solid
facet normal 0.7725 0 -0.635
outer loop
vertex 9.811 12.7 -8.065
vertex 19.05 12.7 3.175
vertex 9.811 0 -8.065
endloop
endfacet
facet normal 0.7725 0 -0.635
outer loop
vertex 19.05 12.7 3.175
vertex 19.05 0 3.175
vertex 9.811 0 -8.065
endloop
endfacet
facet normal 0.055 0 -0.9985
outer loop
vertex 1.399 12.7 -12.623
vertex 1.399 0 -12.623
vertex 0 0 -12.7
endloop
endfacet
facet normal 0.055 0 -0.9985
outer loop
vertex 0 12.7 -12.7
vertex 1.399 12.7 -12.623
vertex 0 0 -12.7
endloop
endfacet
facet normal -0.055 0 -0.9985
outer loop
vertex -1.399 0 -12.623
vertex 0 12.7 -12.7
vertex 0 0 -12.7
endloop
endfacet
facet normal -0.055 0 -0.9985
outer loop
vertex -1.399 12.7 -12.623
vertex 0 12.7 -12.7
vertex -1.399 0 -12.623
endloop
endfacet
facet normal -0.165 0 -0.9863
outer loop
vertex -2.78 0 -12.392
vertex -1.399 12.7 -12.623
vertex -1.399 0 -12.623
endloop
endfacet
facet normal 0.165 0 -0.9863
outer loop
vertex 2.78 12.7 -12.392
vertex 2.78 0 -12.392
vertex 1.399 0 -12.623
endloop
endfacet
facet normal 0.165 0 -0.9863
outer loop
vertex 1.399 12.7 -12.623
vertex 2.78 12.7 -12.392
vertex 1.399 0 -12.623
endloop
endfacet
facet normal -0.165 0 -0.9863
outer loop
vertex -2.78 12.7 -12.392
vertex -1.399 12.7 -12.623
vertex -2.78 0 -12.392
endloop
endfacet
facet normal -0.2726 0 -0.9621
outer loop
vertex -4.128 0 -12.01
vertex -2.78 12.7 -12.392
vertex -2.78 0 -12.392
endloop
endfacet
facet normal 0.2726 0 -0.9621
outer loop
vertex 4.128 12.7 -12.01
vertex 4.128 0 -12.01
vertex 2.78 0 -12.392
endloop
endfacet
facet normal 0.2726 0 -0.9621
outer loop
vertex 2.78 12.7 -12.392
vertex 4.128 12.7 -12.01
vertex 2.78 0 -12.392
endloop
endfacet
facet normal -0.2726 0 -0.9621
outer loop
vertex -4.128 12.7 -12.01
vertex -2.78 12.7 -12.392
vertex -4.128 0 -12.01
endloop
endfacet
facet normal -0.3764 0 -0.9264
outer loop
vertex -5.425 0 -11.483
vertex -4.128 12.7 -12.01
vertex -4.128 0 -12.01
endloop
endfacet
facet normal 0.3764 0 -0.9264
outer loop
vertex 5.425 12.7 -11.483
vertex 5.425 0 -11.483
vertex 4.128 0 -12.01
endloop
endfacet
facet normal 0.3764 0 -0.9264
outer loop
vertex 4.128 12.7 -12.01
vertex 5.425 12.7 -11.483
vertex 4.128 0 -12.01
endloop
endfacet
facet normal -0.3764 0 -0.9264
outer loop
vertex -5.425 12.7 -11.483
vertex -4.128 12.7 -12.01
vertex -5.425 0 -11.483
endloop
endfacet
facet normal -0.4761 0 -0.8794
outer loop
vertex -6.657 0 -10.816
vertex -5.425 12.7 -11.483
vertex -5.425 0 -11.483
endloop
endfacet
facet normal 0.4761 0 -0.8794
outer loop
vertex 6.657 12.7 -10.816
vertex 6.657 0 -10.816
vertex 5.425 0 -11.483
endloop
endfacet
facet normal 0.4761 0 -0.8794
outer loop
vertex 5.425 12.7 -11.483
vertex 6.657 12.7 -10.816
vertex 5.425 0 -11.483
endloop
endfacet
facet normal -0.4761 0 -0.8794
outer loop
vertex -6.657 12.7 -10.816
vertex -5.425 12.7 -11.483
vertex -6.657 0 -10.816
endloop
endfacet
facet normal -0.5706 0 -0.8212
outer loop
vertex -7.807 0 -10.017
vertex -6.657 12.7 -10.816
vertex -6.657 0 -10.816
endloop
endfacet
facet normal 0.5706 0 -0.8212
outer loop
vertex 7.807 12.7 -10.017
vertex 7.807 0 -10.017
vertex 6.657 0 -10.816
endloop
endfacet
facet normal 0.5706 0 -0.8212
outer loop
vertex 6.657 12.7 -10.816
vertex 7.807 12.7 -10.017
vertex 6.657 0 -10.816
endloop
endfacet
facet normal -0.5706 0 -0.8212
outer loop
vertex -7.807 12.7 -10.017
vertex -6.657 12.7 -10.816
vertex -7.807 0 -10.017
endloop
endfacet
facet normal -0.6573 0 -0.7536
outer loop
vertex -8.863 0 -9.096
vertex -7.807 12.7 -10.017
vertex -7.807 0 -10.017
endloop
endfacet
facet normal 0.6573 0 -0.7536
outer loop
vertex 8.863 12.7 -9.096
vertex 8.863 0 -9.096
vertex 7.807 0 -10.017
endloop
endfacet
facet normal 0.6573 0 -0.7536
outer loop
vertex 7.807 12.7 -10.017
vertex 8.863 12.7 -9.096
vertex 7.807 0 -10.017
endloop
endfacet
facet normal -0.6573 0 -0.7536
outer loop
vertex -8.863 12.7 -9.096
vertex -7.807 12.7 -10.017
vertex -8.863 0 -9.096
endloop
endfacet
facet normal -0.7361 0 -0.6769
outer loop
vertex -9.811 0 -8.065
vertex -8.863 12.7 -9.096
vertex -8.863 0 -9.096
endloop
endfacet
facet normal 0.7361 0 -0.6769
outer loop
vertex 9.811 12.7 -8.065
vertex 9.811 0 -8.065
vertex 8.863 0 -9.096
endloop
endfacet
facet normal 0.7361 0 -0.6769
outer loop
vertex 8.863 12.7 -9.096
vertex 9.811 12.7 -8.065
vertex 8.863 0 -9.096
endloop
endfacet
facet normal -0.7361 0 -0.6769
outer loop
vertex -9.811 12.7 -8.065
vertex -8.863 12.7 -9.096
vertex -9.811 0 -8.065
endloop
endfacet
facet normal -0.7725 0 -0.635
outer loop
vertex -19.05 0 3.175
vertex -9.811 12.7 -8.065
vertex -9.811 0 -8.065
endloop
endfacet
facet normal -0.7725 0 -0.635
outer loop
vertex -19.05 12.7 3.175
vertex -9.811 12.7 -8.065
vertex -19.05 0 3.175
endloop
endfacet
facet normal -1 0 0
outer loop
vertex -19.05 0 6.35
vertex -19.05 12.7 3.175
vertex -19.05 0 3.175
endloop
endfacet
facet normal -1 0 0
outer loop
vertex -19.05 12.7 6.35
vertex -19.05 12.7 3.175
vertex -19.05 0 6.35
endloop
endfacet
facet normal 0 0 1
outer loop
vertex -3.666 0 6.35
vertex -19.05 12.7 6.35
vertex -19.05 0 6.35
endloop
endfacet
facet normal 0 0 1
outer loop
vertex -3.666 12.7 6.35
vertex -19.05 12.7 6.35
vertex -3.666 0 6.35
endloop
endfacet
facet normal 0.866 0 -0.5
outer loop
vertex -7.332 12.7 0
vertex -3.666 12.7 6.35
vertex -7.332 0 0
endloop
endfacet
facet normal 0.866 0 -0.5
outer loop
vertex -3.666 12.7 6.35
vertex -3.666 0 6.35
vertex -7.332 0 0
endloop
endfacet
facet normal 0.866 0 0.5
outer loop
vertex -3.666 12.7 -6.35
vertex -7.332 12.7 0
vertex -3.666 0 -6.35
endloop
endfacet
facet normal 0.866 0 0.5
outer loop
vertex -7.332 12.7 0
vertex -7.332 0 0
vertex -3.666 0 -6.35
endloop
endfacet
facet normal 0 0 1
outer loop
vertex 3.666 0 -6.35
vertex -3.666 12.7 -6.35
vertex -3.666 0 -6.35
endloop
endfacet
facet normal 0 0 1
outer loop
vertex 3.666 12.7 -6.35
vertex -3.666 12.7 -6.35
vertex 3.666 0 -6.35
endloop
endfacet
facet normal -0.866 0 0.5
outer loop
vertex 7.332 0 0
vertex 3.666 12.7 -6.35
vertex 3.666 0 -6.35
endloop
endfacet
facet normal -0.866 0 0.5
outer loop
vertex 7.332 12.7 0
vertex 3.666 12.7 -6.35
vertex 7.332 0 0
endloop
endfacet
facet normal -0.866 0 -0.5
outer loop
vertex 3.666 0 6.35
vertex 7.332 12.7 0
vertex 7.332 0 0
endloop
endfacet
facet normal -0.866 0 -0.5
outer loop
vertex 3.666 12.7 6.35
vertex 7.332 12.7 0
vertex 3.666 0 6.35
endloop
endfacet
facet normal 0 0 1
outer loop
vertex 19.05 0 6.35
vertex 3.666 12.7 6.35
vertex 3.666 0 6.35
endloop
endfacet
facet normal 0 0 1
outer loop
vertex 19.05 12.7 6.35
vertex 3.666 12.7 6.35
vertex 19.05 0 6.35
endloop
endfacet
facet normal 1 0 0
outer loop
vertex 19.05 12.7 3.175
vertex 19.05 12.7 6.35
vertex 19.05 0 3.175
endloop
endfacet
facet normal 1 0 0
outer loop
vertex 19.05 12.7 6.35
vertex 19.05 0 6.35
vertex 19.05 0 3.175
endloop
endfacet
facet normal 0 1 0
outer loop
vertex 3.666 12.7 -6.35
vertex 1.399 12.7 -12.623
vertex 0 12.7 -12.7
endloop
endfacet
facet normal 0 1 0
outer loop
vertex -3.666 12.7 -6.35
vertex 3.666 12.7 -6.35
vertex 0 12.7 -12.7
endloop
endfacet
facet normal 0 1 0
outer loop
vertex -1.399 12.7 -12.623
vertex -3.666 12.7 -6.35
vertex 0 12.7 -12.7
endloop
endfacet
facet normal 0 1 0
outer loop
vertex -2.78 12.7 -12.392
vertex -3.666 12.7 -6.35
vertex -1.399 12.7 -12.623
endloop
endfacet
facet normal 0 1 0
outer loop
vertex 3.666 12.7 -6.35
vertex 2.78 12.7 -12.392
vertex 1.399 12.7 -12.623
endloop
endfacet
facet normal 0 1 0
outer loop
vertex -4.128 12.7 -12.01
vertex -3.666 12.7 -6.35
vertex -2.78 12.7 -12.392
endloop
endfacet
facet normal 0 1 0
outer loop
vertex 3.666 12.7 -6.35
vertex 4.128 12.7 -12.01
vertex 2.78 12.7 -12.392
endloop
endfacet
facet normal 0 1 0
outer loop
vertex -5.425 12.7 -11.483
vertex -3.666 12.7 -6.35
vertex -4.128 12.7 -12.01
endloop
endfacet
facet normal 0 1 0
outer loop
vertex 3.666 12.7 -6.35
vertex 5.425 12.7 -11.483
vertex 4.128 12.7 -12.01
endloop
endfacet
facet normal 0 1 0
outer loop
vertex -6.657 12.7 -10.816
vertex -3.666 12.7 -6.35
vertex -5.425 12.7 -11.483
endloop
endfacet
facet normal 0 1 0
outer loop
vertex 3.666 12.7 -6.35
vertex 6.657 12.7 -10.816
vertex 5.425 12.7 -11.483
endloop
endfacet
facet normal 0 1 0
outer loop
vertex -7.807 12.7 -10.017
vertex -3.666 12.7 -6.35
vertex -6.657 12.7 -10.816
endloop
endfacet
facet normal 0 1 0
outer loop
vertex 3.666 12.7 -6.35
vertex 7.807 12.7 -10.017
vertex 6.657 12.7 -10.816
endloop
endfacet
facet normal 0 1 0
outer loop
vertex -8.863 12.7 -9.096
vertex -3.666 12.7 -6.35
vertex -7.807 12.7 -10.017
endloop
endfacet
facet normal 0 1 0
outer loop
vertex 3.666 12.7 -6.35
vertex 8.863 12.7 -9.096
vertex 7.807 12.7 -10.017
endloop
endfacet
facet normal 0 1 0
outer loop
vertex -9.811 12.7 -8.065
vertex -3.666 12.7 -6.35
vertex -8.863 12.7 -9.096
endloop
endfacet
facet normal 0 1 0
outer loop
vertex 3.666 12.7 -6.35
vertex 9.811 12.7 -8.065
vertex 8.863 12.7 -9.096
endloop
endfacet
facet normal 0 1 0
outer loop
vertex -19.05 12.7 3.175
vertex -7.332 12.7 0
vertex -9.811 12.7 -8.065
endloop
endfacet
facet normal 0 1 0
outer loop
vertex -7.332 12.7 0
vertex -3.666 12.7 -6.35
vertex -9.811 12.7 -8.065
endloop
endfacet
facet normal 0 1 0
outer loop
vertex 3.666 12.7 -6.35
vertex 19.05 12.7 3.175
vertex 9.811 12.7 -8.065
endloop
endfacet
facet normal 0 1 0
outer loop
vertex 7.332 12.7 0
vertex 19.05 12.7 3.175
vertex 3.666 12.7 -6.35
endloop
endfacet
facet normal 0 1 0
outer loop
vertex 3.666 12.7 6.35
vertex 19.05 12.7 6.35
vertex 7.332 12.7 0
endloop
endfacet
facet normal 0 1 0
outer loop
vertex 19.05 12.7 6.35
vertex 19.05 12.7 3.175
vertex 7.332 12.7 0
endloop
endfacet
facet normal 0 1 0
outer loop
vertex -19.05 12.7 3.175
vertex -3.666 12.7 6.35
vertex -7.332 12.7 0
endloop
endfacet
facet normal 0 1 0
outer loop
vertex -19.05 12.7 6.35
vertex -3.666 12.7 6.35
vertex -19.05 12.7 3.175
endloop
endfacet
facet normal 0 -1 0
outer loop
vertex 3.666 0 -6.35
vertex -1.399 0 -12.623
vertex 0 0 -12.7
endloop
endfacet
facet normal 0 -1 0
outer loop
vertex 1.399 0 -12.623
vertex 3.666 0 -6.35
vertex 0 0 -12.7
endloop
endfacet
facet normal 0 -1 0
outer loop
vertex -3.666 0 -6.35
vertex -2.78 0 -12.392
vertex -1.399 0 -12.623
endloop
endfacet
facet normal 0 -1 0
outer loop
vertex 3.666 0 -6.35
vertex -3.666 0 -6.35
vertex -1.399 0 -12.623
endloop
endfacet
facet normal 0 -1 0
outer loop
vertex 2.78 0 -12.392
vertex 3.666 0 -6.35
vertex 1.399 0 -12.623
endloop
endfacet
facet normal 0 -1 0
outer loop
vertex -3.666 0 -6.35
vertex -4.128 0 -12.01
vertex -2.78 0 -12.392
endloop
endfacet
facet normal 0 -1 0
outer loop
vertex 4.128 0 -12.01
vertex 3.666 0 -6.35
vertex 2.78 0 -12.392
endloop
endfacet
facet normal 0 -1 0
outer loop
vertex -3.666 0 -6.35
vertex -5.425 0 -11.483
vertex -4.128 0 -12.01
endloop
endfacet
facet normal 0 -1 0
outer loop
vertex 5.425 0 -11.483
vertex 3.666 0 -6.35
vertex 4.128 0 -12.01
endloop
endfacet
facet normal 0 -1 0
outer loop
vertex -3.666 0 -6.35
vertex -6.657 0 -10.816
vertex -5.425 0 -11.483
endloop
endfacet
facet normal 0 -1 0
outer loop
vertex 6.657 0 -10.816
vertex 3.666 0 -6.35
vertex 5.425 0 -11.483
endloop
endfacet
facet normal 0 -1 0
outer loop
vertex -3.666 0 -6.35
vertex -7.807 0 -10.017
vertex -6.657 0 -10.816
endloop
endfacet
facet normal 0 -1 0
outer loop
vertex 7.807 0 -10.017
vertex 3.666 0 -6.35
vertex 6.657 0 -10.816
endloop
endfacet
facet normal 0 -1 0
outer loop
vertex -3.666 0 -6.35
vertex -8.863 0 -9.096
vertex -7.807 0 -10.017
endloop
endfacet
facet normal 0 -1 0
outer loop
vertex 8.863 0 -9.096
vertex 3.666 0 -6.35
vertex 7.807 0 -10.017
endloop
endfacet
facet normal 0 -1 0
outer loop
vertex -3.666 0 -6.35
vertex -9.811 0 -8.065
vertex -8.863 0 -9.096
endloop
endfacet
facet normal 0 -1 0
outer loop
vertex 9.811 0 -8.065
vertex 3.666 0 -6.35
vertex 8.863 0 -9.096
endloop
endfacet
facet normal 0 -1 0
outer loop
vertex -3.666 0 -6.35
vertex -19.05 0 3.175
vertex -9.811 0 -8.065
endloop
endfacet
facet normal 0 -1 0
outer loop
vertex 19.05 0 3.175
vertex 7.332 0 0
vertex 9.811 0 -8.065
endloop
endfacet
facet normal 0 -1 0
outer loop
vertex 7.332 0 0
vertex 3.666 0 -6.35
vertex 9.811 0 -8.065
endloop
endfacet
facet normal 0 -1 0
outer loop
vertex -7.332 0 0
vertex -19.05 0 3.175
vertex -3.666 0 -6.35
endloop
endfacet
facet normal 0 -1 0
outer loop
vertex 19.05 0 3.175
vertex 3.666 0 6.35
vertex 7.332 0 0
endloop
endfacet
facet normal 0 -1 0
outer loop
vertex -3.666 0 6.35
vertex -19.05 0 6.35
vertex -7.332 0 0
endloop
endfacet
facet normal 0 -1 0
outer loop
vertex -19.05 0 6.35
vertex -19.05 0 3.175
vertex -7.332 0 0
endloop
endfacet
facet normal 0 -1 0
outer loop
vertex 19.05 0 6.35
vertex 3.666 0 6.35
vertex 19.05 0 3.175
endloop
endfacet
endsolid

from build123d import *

# Parameters (mm, degrees)
BOSS_EXTRUDE1_DEPTH = 12.7


with BuildPart() as part:
    # Sketch1 → Boss-Extrude1 (new body)
    with BuildSketch(Plane(origin=(0, 0, 0), x_dir=(1, 0, 0), z_dir=(0, 1, 0))):
        with BuildLine():
            Line((3.666174209, -6.35), (19.05, -6.35))
            Line((19.05, -6.35), (19.05, -3.175))
            Line((19.05, -3.175), (9.810775982, 8.064655891))
            ThreePointArc((9.810775982, 8.064655891), (0, 12.7), (-9.810775982, 8.064655891))
            Line((-9.810775982, 8.064655891), (-19.05, -3.175))
            Line((-19.05, -3.175), (-19.05, -6.35))
            Line((-19.05, -6.35), (-3.666174209, -6.35))
            Line((-3.666174209, -6.35), (-7.332348419, 0))
            Line((-7.332348419, 0), (-3.666174209, 6.35))
            Line((-3.666174209, 6.35), (3.666174209, 6.35))
            Line((3.666174209, 6.35), (7.332348419, 0))
            Line((7.332348419, 0), (3.666174209, -6.35))
        make_face()
    extrude(amount=BOSS_EXTRUDE1_DEPTH)


solid = part.part
